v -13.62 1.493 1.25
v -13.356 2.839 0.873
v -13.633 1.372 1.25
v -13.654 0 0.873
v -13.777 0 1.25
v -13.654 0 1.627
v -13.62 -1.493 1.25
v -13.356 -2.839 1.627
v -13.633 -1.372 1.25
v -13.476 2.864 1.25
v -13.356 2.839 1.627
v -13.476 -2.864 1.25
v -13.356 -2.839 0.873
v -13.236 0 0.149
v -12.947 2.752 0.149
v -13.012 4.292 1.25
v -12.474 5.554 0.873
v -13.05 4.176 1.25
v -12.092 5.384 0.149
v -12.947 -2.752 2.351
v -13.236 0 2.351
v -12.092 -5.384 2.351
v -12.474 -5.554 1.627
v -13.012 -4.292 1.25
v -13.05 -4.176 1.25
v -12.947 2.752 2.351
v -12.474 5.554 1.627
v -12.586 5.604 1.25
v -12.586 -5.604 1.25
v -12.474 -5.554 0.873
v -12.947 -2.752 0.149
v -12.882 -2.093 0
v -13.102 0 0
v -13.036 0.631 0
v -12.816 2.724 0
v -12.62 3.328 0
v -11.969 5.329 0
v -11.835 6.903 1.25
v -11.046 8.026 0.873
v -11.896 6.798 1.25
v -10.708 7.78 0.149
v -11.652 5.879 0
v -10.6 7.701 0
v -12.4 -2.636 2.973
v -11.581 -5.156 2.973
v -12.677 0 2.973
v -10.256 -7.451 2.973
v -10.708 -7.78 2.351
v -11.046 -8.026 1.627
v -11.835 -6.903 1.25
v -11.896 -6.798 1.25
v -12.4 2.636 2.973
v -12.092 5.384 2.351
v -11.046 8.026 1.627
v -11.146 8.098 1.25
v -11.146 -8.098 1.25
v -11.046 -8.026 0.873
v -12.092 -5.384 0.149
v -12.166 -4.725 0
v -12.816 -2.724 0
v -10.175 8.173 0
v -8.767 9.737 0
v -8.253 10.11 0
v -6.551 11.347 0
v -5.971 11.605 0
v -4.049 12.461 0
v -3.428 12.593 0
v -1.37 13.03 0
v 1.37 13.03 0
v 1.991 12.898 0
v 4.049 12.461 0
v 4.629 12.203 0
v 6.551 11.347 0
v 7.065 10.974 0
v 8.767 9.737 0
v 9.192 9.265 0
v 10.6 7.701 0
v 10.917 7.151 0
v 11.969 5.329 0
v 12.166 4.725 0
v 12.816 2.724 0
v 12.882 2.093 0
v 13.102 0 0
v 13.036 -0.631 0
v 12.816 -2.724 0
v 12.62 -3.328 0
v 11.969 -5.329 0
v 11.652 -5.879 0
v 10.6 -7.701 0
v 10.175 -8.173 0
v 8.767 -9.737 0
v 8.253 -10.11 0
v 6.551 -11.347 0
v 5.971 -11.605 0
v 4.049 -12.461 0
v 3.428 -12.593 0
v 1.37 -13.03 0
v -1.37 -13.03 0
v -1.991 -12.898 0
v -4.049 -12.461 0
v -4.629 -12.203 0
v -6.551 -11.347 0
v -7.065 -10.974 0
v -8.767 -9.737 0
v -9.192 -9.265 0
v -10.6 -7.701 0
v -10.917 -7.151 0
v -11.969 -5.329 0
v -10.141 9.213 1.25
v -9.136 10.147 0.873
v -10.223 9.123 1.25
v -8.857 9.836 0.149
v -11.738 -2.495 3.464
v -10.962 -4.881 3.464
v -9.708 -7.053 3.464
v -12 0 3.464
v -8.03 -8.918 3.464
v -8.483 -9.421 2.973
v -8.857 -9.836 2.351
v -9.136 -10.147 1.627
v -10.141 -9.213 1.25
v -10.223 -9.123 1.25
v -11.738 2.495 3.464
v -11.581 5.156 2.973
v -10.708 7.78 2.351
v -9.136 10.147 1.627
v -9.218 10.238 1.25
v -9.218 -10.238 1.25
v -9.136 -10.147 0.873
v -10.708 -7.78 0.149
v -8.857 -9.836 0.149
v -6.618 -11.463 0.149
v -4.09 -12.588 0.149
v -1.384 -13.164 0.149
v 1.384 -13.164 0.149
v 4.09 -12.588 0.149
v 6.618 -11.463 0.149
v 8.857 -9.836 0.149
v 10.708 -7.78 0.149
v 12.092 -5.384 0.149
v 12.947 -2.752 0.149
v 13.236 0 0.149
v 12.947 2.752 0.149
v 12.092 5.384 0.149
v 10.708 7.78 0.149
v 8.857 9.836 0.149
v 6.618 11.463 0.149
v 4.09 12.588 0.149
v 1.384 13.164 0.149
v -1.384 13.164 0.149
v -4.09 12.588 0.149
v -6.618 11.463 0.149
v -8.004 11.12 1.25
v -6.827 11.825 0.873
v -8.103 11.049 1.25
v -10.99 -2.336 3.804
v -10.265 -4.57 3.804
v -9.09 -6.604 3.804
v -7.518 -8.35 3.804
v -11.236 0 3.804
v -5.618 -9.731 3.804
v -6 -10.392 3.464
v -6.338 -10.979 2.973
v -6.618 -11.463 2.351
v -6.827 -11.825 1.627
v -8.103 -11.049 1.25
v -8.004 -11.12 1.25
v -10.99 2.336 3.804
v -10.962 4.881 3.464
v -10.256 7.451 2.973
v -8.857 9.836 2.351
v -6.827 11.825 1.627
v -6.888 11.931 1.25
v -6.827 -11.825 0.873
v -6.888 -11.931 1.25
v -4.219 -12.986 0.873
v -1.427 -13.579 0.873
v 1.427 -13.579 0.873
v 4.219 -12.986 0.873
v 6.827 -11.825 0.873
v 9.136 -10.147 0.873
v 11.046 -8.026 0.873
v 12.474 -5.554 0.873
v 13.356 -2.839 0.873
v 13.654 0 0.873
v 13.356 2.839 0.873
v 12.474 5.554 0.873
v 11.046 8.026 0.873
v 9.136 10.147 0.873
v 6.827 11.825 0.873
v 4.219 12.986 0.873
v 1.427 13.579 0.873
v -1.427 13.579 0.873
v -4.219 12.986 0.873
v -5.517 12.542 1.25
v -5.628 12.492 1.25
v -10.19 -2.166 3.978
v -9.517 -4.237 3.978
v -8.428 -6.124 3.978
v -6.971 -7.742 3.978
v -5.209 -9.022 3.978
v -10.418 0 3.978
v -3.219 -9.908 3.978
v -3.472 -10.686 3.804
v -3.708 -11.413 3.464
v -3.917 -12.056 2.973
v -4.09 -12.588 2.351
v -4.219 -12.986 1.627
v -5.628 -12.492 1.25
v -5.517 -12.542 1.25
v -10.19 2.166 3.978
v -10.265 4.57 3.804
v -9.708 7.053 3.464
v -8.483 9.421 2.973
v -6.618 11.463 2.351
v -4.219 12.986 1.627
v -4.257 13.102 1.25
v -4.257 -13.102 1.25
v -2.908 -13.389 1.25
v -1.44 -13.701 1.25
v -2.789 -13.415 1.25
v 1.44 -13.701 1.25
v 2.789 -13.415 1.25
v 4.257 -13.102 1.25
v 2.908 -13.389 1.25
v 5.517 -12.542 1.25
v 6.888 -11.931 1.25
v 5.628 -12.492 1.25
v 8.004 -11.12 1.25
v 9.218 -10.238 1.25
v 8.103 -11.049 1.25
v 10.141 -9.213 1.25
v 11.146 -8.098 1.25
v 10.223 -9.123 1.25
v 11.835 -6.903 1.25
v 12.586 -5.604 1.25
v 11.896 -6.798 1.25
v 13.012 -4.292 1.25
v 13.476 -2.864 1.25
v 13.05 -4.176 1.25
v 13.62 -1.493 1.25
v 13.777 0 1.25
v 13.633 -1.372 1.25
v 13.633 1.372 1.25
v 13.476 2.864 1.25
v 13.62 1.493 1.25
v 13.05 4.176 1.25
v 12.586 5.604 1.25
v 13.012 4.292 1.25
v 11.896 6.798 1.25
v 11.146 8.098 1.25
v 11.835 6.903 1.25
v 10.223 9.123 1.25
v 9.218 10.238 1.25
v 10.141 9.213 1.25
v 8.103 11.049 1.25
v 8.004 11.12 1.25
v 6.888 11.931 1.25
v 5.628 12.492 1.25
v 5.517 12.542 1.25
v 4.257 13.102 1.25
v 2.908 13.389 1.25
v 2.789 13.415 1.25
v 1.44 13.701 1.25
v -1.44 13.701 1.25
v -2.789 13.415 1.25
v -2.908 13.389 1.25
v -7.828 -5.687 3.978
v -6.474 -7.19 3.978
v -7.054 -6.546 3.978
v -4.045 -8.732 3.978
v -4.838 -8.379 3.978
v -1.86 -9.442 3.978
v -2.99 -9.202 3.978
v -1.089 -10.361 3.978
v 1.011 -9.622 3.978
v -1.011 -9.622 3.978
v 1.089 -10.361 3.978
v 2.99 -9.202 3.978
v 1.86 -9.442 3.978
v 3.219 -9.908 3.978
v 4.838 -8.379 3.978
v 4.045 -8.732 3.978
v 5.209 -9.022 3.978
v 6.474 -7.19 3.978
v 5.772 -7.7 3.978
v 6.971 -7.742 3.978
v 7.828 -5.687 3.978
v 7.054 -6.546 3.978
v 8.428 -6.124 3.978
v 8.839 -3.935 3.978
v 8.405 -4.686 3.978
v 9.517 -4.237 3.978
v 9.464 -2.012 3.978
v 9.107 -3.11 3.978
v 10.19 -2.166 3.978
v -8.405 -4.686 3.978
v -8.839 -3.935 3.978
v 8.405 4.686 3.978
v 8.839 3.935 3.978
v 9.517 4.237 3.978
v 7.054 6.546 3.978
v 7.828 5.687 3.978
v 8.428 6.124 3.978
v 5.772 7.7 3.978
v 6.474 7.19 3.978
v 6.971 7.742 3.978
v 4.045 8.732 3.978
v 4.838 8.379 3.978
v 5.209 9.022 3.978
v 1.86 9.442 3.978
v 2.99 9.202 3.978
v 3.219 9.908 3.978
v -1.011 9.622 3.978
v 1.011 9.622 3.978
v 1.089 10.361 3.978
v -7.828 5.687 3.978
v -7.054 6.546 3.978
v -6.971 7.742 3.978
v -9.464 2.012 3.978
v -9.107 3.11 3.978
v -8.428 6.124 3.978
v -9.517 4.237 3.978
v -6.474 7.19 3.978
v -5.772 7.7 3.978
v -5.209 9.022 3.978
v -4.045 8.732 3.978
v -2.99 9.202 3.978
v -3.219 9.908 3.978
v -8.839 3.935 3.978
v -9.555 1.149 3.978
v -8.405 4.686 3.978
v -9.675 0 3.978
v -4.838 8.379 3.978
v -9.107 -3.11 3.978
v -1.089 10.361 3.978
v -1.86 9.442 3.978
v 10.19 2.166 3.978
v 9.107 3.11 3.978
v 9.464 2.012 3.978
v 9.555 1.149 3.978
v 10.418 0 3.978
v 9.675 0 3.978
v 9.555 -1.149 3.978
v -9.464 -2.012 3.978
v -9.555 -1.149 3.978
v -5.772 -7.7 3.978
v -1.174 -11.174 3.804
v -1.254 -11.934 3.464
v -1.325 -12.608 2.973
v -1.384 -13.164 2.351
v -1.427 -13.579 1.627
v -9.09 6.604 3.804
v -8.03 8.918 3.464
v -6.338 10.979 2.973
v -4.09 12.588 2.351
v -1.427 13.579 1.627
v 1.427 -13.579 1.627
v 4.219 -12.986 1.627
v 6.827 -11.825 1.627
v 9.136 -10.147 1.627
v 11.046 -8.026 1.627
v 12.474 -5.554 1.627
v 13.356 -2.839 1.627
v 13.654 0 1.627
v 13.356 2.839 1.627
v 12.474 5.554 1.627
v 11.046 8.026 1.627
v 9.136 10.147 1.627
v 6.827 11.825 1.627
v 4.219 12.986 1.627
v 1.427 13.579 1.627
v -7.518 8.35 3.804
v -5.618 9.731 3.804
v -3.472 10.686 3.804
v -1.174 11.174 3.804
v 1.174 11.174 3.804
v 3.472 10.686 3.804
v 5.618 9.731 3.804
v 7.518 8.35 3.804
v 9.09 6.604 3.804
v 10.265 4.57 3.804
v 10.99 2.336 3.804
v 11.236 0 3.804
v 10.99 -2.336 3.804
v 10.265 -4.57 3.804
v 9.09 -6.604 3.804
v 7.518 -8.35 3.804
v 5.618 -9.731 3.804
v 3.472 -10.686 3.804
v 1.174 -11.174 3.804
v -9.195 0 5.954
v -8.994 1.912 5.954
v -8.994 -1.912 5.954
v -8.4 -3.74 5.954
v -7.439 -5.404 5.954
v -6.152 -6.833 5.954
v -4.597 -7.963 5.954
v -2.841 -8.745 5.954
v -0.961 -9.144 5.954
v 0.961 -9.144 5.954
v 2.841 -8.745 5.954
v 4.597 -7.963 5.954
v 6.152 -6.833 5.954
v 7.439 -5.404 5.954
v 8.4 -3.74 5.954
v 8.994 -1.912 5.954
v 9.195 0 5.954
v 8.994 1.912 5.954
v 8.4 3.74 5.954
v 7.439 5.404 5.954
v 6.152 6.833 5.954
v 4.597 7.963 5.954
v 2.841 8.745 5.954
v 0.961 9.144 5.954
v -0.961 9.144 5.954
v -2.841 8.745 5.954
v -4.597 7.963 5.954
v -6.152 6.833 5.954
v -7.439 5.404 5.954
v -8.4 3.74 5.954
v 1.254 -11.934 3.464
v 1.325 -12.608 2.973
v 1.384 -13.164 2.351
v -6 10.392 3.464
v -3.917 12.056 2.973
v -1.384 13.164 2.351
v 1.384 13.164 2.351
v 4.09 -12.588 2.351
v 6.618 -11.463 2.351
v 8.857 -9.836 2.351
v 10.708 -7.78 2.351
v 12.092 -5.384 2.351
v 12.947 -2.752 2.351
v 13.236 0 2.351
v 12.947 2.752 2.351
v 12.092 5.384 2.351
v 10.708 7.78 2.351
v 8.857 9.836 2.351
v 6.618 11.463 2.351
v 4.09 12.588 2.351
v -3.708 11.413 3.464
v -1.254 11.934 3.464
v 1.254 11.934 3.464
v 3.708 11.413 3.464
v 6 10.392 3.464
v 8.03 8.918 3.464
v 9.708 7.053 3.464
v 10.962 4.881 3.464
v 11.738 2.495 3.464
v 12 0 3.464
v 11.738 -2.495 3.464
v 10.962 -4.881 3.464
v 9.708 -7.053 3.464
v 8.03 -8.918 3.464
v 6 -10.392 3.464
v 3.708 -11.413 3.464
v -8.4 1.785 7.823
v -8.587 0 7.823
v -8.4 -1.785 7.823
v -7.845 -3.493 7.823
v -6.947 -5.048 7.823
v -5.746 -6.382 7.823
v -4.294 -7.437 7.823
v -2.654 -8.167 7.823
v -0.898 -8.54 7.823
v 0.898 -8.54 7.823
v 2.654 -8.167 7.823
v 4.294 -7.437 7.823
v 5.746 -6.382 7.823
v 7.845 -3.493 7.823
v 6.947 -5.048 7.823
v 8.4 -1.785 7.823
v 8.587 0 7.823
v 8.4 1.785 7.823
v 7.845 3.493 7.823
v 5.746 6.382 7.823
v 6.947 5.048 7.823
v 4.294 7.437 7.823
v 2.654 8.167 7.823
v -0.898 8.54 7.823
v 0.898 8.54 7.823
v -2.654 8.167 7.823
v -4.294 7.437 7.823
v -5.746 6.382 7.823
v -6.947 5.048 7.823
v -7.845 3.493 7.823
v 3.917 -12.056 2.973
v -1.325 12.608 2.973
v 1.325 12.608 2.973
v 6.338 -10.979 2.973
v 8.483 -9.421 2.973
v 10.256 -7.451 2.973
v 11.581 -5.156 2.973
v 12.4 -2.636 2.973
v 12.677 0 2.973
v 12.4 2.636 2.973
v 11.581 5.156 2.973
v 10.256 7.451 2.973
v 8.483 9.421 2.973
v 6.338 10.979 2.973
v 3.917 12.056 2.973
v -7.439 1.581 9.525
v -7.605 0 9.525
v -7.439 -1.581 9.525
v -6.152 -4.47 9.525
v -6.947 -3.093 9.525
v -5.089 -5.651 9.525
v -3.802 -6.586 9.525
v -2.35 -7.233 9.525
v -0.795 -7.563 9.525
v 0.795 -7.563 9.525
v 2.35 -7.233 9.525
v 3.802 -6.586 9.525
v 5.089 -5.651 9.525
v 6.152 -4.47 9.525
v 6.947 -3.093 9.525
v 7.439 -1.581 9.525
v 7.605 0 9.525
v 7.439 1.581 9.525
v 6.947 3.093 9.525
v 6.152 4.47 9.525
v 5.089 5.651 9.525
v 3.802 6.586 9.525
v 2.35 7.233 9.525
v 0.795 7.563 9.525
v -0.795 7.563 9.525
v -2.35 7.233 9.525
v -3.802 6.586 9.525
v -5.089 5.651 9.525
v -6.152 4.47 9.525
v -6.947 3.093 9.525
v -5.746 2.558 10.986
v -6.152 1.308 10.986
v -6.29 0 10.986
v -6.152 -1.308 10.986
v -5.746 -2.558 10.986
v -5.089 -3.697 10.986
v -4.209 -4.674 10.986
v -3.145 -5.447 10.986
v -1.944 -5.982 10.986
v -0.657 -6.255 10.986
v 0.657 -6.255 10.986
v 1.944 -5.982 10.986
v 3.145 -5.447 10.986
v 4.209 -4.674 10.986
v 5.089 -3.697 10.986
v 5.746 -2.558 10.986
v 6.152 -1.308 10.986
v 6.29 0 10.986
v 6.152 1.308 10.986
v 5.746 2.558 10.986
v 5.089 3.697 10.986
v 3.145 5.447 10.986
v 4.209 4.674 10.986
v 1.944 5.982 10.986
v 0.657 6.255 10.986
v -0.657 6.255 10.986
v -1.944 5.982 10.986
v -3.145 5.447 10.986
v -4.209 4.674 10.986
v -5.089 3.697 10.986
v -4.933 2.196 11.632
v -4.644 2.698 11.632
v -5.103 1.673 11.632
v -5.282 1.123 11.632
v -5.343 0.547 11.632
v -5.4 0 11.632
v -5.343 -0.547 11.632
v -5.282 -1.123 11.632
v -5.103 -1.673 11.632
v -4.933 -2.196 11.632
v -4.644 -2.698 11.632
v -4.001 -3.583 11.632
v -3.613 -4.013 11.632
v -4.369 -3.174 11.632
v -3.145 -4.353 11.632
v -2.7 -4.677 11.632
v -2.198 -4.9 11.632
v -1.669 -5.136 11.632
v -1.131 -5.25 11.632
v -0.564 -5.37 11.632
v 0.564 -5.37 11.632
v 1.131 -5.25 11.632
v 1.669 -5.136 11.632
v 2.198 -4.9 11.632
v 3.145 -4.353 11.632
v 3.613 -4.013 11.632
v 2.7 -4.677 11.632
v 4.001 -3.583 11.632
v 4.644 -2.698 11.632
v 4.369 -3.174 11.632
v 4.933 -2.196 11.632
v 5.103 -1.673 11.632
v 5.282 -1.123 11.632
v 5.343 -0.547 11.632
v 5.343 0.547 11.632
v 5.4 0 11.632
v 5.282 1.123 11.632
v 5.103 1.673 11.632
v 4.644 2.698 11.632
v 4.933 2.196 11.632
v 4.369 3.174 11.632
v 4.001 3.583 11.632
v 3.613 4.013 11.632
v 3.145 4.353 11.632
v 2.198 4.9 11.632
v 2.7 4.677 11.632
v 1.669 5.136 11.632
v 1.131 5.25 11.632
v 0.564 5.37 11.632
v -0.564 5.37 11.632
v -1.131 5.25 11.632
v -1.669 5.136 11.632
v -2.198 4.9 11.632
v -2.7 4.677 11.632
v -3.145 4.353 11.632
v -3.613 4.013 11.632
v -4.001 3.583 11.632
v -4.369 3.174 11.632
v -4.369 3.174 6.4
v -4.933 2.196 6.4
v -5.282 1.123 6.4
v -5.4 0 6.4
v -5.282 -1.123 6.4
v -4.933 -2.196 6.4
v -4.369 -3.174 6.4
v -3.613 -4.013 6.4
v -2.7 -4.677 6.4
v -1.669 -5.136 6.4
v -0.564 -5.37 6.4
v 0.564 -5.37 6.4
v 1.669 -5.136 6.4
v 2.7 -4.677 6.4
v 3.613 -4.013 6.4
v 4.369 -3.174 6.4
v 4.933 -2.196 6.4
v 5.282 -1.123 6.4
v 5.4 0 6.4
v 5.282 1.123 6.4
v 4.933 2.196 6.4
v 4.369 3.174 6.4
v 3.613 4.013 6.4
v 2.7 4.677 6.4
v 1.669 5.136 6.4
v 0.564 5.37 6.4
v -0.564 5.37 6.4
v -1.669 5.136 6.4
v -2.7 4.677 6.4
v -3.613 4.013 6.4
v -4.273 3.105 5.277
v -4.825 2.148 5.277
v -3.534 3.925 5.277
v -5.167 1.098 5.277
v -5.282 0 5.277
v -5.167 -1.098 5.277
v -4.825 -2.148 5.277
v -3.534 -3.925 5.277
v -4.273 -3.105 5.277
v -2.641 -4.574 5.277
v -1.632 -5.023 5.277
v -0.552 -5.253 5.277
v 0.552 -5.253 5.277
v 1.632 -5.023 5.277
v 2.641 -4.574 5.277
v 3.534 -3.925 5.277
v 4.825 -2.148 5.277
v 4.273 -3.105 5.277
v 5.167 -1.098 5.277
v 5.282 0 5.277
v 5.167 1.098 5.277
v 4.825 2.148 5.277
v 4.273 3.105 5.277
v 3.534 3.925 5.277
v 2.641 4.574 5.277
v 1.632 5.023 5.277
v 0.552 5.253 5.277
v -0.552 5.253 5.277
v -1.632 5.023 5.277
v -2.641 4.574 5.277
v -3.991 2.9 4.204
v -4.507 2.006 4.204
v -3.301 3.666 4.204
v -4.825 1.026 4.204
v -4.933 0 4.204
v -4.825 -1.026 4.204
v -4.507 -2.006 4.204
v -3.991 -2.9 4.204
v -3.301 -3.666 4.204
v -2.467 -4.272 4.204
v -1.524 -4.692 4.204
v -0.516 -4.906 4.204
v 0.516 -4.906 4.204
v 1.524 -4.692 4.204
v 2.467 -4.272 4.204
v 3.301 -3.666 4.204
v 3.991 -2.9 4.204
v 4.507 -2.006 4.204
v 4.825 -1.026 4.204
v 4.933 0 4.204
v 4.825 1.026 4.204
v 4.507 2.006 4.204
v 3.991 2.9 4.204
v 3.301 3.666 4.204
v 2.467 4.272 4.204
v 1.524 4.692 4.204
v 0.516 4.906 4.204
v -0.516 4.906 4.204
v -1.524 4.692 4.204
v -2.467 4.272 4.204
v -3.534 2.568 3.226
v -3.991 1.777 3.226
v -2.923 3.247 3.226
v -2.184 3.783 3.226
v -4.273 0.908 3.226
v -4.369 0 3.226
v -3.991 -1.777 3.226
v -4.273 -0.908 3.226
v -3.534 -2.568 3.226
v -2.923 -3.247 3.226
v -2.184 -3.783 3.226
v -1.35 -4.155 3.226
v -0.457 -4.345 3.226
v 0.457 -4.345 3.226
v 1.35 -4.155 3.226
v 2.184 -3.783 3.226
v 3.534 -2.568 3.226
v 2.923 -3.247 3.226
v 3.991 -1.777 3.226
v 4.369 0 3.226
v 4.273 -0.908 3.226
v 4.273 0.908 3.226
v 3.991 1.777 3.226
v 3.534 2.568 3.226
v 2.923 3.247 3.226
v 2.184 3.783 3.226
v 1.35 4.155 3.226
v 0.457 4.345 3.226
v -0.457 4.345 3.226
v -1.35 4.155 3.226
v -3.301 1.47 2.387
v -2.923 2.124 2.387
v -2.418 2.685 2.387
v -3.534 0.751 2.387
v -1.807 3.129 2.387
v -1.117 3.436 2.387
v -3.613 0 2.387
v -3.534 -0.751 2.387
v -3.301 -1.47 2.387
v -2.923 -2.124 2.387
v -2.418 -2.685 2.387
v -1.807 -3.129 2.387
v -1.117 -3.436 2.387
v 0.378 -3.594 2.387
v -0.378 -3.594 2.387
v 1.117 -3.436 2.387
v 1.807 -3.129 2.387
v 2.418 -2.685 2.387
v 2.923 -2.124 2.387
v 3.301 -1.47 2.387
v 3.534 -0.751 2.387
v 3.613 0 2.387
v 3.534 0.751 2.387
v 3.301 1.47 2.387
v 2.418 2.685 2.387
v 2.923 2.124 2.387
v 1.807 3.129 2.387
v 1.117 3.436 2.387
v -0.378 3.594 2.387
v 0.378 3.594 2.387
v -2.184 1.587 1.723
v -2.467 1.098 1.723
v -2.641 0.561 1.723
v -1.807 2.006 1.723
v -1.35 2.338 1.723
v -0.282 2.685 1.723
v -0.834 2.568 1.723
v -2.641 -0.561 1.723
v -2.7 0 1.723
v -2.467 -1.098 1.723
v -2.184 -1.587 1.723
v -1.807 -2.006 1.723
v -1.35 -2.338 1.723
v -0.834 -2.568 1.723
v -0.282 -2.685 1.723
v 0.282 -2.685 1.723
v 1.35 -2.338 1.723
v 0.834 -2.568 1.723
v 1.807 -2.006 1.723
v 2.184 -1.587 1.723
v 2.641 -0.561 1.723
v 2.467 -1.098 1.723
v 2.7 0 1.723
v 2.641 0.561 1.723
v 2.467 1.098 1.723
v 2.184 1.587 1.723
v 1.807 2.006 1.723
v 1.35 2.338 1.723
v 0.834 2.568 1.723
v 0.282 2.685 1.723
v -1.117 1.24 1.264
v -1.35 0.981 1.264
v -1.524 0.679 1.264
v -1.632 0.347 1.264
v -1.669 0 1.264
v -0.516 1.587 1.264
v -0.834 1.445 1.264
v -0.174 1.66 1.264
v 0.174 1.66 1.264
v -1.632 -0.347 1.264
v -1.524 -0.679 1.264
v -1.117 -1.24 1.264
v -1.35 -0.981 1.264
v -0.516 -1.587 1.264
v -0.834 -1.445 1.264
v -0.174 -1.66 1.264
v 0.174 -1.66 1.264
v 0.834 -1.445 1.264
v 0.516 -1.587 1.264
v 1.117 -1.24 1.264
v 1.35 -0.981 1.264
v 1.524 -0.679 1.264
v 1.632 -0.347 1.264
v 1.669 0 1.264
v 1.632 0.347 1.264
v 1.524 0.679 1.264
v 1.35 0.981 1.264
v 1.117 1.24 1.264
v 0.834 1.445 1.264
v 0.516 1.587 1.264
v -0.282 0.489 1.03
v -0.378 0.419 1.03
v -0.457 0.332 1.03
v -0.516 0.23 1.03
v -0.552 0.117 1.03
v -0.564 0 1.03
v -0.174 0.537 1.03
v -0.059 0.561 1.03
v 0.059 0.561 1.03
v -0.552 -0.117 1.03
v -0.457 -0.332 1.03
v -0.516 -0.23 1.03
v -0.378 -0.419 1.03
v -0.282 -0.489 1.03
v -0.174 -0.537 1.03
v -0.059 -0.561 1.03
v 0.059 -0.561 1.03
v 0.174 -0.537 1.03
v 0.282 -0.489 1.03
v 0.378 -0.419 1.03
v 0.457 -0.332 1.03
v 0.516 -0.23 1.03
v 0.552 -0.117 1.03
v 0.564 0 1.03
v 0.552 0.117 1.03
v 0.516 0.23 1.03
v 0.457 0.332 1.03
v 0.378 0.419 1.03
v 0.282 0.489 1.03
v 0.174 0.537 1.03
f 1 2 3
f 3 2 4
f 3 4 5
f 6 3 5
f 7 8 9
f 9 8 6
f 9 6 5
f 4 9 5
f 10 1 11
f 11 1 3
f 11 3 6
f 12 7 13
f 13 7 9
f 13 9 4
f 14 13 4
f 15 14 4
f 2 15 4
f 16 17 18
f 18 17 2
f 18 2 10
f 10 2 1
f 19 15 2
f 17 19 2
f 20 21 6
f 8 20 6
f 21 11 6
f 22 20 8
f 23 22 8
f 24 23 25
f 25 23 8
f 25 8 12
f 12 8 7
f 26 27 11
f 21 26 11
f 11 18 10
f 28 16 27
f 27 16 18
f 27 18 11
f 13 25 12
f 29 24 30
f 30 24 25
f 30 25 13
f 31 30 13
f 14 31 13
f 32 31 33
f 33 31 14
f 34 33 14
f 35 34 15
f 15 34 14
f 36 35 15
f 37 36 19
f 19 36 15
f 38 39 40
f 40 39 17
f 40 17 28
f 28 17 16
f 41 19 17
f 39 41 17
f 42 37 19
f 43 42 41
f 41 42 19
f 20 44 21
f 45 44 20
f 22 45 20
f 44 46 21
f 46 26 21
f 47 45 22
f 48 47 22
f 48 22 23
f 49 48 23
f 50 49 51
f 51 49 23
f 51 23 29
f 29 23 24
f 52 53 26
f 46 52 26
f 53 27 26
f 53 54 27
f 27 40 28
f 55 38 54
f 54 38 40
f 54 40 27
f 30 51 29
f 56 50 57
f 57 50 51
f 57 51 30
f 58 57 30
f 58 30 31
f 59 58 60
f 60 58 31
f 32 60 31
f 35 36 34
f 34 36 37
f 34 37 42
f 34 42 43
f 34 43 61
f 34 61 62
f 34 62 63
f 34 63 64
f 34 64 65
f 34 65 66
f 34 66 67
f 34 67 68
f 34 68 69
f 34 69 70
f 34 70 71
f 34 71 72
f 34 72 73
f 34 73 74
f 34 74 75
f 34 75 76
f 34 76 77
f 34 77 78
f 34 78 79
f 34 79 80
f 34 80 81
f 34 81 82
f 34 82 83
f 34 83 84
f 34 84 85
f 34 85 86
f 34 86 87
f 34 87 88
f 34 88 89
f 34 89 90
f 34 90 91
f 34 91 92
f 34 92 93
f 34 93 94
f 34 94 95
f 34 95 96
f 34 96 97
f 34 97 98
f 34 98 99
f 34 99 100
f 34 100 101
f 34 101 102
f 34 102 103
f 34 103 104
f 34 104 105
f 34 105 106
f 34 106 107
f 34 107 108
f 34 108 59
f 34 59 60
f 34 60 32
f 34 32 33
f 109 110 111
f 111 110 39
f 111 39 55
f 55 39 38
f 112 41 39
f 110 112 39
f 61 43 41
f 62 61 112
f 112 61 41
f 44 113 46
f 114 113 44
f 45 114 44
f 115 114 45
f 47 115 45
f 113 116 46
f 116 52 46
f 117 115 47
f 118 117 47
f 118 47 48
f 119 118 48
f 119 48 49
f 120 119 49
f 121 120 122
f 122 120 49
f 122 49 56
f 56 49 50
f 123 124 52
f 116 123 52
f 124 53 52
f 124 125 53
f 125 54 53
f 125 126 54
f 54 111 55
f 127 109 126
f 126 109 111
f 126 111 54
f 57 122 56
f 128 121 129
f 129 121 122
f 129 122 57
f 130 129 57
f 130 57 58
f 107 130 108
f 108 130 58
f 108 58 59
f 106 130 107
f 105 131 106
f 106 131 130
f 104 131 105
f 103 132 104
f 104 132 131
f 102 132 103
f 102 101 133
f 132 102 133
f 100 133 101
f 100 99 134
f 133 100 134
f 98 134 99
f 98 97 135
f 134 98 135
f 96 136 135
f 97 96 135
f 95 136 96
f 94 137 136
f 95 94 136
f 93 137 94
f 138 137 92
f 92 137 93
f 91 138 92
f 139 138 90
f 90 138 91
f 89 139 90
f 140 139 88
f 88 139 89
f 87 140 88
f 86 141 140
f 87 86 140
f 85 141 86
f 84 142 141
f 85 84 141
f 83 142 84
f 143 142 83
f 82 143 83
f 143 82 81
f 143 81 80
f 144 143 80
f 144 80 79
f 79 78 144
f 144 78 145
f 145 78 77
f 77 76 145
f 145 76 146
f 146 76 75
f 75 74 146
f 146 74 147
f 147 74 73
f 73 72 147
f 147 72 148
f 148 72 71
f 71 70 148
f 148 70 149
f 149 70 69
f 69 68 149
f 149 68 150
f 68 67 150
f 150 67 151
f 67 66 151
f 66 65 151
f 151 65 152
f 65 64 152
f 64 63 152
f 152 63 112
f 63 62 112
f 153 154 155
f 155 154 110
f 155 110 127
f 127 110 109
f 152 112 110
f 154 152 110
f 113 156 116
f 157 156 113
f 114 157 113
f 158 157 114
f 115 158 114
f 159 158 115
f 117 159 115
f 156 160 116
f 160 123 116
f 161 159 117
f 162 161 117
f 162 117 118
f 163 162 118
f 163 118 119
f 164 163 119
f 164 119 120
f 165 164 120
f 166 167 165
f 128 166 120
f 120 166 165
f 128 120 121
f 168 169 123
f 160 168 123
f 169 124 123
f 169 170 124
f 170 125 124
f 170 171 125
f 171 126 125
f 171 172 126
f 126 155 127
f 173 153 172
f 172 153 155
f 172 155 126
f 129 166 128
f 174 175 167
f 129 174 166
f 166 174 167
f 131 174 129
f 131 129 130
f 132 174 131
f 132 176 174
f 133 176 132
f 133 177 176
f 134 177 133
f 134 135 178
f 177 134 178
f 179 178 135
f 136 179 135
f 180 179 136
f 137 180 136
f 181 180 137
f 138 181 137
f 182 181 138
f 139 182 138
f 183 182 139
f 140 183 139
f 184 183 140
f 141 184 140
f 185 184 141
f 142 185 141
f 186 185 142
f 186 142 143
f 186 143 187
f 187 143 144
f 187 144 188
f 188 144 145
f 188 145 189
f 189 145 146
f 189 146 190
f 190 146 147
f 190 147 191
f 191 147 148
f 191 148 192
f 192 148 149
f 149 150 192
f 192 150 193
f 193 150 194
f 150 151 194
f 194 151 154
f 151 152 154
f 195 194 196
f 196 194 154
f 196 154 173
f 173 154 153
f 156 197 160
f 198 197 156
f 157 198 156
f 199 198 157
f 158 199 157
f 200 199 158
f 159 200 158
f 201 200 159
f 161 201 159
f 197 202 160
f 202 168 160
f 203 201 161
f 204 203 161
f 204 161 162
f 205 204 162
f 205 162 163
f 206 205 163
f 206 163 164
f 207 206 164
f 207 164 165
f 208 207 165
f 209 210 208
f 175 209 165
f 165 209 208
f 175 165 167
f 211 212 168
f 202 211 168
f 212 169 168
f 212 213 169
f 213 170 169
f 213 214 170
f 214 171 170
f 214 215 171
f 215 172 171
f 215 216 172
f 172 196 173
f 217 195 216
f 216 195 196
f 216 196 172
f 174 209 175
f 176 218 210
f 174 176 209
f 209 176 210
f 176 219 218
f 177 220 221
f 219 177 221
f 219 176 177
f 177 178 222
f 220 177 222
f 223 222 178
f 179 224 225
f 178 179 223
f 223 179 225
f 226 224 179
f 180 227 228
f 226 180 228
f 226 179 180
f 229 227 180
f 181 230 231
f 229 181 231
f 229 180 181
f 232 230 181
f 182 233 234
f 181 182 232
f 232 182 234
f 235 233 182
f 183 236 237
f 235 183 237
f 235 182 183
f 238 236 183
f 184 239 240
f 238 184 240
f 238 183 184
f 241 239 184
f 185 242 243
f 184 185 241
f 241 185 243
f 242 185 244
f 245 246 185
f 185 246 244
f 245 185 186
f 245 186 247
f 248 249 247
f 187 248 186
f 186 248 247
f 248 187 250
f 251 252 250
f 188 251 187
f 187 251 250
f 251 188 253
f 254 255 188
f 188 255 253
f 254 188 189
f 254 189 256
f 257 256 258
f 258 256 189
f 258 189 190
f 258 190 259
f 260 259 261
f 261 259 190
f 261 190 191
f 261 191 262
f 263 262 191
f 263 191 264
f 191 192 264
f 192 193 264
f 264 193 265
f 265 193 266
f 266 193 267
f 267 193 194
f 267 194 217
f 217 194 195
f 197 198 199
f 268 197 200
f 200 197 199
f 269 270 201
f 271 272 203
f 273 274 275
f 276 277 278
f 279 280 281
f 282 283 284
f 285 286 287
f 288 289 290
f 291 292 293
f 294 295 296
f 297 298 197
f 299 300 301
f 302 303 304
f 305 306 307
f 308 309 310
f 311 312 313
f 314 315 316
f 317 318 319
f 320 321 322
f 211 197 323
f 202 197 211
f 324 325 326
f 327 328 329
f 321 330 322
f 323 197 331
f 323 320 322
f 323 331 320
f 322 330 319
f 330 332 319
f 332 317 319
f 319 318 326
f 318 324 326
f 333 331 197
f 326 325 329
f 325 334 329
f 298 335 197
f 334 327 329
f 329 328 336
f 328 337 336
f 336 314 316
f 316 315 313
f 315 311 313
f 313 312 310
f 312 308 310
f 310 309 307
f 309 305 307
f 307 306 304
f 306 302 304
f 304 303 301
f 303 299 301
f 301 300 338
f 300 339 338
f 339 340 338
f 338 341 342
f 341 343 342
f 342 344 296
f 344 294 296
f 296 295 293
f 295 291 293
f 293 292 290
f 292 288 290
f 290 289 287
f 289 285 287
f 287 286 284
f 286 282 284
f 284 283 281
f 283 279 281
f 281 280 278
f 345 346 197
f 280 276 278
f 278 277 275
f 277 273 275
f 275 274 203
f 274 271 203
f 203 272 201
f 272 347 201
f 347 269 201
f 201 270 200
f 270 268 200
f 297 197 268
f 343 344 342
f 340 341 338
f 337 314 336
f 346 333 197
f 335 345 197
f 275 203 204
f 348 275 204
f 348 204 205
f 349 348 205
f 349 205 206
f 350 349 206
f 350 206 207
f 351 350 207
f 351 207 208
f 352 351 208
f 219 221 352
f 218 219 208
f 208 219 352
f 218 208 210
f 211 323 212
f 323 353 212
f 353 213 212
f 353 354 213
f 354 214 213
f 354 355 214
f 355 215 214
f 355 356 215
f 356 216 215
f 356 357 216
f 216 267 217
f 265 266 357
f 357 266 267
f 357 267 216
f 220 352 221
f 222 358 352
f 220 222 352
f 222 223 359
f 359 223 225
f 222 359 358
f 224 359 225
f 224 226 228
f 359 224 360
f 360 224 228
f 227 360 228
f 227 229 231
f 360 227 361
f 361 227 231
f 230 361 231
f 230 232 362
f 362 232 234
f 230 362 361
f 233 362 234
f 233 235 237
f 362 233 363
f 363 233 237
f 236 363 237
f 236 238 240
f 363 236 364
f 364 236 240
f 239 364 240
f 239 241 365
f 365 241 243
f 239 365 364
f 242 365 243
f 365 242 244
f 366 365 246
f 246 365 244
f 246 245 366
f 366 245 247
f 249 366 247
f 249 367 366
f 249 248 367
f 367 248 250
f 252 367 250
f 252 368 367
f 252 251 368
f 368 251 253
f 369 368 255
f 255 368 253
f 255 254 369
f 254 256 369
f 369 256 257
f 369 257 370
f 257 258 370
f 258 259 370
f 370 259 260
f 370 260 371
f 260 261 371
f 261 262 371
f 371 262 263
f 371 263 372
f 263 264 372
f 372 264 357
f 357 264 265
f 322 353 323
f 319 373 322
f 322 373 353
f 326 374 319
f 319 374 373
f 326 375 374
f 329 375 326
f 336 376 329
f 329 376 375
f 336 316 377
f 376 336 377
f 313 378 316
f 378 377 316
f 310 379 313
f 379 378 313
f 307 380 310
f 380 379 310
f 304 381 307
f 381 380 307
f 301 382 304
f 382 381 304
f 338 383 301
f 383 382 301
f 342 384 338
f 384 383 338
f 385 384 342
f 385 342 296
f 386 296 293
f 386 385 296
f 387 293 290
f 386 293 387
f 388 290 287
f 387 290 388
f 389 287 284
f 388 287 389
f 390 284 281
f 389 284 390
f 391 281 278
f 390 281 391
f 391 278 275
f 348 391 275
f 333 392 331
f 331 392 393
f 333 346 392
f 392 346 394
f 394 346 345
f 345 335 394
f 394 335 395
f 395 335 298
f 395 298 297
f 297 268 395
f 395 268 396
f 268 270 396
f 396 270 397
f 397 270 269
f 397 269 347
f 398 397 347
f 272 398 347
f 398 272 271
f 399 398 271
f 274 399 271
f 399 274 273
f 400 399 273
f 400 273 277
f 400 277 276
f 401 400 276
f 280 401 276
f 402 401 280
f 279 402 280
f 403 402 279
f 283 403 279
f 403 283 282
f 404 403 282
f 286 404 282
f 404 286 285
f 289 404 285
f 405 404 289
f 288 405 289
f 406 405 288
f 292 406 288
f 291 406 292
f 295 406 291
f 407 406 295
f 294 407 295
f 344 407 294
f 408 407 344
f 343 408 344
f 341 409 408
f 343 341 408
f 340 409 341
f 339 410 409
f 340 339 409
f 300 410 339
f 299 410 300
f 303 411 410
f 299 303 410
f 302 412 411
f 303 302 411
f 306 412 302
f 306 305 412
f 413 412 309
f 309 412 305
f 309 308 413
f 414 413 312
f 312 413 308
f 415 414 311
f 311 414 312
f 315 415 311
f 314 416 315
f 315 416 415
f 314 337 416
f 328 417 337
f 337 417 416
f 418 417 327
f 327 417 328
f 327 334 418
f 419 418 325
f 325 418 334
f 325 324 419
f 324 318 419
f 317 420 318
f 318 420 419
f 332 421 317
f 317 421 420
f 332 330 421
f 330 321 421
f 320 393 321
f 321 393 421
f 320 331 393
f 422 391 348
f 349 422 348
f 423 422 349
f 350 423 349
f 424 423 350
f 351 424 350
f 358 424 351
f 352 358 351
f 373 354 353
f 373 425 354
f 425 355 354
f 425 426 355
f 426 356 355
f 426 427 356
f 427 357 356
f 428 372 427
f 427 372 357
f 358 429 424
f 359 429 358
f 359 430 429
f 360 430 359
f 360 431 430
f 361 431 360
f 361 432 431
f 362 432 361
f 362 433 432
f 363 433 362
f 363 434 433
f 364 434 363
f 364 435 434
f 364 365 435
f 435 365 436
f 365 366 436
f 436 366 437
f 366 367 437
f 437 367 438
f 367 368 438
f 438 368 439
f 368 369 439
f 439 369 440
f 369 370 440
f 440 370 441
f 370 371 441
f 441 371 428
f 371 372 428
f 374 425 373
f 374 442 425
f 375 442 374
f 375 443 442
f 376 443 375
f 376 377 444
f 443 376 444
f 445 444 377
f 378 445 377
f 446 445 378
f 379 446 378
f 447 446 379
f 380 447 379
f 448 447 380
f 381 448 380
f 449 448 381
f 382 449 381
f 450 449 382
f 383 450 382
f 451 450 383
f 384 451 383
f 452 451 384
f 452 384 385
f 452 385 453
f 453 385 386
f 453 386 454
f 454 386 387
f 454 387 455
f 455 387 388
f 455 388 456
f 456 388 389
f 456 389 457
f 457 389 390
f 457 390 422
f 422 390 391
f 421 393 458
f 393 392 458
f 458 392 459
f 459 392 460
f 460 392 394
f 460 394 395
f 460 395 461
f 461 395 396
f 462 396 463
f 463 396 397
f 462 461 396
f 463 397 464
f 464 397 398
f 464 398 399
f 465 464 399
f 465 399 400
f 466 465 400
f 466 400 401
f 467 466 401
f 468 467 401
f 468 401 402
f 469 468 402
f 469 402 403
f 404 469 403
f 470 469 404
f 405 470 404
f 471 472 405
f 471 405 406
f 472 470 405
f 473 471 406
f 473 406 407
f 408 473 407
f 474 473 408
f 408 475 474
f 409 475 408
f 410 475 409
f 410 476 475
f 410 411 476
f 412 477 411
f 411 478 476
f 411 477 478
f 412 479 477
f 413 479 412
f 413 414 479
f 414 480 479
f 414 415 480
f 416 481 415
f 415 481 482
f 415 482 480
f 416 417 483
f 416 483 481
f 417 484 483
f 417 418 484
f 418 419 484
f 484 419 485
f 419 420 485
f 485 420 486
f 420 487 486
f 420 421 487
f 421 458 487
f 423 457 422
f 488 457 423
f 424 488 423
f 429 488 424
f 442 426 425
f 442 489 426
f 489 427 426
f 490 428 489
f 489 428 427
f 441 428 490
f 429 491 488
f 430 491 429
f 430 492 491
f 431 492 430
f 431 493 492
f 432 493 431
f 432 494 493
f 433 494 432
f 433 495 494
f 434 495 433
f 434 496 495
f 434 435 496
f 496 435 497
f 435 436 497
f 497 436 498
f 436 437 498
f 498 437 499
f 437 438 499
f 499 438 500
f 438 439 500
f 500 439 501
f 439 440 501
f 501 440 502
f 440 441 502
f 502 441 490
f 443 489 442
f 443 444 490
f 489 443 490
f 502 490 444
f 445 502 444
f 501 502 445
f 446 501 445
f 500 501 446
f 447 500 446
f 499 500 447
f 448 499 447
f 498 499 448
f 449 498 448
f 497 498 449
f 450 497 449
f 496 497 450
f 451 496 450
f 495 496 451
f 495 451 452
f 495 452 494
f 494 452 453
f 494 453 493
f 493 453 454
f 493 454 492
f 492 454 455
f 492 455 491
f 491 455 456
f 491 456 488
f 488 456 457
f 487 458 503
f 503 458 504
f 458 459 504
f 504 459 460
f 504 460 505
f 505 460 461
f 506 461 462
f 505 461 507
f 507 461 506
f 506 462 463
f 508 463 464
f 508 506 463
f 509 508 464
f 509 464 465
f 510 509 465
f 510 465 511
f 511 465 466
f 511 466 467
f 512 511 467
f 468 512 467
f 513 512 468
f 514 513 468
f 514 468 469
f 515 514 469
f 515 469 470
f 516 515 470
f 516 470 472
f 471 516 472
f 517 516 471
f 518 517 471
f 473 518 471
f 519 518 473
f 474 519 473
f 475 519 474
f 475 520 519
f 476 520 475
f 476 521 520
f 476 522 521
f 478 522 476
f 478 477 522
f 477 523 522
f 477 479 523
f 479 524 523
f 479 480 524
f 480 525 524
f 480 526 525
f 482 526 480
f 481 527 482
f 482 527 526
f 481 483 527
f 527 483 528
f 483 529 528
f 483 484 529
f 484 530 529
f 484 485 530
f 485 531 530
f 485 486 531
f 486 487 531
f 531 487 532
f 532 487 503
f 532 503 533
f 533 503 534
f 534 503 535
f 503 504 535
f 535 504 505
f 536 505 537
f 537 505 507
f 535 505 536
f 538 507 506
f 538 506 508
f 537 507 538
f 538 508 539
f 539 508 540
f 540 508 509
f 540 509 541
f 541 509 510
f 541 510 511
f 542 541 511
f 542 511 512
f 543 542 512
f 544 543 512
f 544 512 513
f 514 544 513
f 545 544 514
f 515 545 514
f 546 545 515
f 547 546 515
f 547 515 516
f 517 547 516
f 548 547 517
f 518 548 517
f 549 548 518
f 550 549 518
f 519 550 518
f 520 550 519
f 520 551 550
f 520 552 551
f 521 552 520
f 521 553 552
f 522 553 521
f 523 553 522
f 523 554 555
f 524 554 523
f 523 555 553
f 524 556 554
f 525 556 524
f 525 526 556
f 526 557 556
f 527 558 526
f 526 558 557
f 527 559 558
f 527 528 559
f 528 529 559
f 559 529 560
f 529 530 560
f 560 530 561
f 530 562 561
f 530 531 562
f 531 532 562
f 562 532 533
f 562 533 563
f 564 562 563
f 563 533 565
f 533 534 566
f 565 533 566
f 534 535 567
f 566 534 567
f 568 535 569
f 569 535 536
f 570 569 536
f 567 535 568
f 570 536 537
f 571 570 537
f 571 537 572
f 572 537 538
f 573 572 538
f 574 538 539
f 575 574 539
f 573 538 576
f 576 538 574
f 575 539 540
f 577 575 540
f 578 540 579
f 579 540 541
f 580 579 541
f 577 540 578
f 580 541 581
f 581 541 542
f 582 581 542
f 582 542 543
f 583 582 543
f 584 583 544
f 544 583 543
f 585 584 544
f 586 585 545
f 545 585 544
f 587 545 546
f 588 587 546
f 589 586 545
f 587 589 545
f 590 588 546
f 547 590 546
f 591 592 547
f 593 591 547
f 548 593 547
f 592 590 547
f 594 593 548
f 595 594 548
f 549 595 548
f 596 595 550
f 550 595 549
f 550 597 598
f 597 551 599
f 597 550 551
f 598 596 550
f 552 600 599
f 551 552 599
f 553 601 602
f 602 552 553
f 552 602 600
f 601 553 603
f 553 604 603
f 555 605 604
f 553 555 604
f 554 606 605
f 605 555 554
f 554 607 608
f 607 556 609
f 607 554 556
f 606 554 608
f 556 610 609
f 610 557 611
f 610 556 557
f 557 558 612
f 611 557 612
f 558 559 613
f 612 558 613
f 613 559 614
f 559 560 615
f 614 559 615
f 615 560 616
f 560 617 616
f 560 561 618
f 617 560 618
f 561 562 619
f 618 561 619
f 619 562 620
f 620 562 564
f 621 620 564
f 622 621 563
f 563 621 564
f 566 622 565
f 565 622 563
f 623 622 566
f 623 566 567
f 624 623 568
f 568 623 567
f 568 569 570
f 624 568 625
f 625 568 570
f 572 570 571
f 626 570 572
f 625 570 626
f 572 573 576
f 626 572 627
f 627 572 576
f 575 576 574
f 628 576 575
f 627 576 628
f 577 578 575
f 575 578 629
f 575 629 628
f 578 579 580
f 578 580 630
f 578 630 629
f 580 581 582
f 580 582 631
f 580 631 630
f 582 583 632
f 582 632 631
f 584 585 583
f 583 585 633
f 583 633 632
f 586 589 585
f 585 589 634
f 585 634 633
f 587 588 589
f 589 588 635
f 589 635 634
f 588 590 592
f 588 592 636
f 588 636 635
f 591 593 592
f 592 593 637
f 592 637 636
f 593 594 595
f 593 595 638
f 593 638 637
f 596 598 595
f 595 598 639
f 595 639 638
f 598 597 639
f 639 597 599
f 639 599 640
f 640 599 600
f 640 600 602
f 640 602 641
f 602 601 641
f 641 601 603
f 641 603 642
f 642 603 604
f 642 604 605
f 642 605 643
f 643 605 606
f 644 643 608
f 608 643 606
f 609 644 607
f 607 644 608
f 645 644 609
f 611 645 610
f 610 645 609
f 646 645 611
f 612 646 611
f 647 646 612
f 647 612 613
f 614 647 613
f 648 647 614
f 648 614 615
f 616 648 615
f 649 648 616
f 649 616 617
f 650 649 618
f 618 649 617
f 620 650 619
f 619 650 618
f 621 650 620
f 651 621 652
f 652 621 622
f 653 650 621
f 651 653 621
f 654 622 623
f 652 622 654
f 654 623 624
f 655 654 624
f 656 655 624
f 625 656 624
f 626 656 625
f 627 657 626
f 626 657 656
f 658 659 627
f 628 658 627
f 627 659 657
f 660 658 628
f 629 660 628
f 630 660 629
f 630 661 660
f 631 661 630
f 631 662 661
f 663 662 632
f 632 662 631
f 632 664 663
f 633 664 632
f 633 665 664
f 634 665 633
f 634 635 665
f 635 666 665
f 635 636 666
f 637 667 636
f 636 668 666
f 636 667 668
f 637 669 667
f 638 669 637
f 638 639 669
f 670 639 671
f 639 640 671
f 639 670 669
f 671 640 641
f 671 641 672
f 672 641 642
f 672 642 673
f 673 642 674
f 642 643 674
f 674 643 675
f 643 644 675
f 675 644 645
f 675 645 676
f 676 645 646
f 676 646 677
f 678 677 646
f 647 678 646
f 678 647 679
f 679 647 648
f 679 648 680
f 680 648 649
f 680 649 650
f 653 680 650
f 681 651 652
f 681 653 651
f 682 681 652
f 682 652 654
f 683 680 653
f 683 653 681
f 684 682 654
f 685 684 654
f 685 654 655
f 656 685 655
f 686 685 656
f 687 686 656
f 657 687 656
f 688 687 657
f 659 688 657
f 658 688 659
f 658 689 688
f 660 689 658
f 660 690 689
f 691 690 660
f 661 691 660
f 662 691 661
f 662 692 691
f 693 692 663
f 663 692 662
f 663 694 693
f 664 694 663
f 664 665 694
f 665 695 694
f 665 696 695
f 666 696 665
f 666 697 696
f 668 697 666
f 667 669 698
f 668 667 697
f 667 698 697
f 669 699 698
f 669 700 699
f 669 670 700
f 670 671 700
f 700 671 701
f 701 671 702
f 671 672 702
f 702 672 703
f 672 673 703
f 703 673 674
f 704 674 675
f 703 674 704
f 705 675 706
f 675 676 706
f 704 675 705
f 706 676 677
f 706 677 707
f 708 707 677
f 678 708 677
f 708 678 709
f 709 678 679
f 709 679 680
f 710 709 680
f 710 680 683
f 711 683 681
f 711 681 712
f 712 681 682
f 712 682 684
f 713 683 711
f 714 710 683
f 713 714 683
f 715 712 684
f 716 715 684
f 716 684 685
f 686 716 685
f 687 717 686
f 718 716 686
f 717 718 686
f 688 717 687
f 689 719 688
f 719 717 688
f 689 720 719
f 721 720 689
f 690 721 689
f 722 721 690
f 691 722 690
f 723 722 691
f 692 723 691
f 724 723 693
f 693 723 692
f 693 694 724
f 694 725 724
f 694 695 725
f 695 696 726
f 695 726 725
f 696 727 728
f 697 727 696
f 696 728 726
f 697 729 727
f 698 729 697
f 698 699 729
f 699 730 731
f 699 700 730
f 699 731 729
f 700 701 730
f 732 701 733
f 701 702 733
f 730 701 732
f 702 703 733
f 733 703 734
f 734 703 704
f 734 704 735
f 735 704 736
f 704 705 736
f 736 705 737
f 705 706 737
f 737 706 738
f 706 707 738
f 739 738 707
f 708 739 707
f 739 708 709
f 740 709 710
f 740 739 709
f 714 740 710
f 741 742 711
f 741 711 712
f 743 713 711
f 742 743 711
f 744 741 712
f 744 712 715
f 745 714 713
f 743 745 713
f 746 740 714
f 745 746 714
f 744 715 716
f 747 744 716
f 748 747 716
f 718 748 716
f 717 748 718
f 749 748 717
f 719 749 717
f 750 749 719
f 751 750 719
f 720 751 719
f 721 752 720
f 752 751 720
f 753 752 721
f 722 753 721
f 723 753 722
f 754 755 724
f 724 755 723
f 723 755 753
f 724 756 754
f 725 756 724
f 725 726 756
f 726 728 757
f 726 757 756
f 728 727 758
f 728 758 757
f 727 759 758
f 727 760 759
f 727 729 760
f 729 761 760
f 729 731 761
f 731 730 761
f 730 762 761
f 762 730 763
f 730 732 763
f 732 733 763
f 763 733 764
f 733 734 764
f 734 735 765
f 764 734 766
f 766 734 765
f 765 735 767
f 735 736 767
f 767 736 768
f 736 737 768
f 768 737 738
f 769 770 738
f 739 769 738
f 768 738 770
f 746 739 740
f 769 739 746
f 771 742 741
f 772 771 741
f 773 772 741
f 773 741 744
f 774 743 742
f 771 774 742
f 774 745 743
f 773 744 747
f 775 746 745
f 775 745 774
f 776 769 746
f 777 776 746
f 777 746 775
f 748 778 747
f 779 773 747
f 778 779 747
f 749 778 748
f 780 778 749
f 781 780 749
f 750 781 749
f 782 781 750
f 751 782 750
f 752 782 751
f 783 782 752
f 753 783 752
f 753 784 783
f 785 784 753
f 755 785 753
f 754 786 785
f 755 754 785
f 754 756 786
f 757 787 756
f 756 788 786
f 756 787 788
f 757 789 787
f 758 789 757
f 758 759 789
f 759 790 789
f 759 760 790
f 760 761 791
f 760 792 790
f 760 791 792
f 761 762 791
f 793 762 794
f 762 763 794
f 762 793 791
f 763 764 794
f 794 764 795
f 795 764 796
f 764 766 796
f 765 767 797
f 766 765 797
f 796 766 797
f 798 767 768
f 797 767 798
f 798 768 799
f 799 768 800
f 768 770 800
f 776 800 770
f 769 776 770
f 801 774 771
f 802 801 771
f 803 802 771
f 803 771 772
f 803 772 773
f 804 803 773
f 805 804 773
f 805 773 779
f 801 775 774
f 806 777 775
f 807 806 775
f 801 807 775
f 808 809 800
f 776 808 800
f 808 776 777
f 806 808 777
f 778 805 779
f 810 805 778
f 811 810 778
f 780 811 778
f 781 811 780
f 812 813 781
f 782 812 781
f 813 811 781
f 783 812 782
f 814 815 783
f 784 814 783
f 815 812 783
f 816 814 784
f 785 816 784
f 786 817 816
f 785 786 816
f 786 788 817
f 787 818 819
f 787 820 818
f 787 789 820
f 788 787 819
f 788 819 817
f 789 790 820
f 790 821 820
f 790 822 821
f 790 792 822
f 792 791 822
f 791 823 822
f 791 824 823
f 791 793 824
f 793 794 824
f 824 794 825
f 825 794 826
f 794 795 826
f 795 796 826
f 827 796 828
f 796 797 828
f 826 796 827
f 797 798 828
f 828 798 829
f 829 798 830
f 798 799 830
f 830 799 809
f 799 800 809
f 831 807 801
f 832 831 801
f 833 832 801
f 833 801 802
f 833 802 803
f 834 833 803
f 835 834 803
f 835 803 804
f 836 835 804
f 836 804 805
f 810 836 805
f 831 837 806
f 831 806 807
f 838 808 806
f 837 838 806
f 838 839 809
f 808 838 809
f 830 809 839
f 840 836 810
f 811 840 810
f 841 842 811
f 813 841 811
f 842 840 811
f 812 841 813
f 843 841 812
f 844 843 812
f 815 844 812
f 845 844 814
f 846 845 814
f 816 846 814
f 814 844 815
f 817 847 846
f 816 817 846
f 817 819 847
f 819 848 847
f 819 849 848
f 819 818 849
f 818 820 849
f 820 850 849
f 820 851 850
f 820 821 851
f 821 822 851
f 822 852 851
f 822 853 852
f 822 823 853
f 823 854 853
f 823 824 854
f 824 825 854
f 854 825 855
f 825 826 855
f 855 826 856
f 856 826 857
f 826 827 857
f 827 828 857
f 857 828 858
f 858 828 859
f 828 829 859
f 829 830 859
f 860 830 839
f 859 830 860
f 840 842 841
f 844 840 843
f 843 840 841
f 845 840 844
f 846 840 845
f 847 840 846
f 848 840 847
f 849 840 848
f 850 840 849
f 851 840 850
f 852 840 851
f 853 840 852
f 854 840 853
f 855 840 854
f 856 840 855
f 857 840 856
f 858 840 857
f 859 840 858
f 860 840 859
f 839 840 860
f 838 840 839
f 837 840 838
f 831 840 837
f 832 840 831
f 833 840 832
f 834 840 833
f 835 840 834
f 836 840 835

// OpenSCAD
d=10.8;
h=12;
db=28;



pad = 0.1;	// Padding to maintain manifold
ch = 10;
cr = 16;
ct = 2;
r = 4;
smooth = 30;	// Number of facets of rounding cylinder

$fn = smooth;


difference(){
union(){

 hull(){
  translate([0,0,h/2-2]) sphere(r=d/2+4);
  cylinder(r=d/2+5,h=1);
 }

//cylinder(r=db/2,h=4);



// Inside Fillet
mirror([0,0,1]) translate([0,0,-4])
	{
	intersection(){
	//cylinder(r=db/2,r2=db/2-1,h=4);

/*
	#rotate_extrude(convexity=10,  $fn = smooth)
		translate([cr-ct-r+pad,ct-pad,0])
			square(r+pad,r+pad);
*/
	translate([0,0,-2]) rotate_extrude(convexity=10,  $fn = smooth)
		translate([cr-ct-r,ct+r,0])
			circle(r=r,$fn=smooth);

	translate([0,0,-4.5]) #rotate_extrude(convexity=10,  $fn = smooth)
		translate([cr-ct-r,ct+r,0])
			circle(r=r,$fn=smooth);

}
}
}

 translate([0,0,d/2+2]) hull(){
  translate([0,0,20]) sphere(r=d/2);
  translate([0,0,-1]) #sphere(r=d/2);
 }


translate([0,0,-40])cylinder(r=40,h=40);

}
